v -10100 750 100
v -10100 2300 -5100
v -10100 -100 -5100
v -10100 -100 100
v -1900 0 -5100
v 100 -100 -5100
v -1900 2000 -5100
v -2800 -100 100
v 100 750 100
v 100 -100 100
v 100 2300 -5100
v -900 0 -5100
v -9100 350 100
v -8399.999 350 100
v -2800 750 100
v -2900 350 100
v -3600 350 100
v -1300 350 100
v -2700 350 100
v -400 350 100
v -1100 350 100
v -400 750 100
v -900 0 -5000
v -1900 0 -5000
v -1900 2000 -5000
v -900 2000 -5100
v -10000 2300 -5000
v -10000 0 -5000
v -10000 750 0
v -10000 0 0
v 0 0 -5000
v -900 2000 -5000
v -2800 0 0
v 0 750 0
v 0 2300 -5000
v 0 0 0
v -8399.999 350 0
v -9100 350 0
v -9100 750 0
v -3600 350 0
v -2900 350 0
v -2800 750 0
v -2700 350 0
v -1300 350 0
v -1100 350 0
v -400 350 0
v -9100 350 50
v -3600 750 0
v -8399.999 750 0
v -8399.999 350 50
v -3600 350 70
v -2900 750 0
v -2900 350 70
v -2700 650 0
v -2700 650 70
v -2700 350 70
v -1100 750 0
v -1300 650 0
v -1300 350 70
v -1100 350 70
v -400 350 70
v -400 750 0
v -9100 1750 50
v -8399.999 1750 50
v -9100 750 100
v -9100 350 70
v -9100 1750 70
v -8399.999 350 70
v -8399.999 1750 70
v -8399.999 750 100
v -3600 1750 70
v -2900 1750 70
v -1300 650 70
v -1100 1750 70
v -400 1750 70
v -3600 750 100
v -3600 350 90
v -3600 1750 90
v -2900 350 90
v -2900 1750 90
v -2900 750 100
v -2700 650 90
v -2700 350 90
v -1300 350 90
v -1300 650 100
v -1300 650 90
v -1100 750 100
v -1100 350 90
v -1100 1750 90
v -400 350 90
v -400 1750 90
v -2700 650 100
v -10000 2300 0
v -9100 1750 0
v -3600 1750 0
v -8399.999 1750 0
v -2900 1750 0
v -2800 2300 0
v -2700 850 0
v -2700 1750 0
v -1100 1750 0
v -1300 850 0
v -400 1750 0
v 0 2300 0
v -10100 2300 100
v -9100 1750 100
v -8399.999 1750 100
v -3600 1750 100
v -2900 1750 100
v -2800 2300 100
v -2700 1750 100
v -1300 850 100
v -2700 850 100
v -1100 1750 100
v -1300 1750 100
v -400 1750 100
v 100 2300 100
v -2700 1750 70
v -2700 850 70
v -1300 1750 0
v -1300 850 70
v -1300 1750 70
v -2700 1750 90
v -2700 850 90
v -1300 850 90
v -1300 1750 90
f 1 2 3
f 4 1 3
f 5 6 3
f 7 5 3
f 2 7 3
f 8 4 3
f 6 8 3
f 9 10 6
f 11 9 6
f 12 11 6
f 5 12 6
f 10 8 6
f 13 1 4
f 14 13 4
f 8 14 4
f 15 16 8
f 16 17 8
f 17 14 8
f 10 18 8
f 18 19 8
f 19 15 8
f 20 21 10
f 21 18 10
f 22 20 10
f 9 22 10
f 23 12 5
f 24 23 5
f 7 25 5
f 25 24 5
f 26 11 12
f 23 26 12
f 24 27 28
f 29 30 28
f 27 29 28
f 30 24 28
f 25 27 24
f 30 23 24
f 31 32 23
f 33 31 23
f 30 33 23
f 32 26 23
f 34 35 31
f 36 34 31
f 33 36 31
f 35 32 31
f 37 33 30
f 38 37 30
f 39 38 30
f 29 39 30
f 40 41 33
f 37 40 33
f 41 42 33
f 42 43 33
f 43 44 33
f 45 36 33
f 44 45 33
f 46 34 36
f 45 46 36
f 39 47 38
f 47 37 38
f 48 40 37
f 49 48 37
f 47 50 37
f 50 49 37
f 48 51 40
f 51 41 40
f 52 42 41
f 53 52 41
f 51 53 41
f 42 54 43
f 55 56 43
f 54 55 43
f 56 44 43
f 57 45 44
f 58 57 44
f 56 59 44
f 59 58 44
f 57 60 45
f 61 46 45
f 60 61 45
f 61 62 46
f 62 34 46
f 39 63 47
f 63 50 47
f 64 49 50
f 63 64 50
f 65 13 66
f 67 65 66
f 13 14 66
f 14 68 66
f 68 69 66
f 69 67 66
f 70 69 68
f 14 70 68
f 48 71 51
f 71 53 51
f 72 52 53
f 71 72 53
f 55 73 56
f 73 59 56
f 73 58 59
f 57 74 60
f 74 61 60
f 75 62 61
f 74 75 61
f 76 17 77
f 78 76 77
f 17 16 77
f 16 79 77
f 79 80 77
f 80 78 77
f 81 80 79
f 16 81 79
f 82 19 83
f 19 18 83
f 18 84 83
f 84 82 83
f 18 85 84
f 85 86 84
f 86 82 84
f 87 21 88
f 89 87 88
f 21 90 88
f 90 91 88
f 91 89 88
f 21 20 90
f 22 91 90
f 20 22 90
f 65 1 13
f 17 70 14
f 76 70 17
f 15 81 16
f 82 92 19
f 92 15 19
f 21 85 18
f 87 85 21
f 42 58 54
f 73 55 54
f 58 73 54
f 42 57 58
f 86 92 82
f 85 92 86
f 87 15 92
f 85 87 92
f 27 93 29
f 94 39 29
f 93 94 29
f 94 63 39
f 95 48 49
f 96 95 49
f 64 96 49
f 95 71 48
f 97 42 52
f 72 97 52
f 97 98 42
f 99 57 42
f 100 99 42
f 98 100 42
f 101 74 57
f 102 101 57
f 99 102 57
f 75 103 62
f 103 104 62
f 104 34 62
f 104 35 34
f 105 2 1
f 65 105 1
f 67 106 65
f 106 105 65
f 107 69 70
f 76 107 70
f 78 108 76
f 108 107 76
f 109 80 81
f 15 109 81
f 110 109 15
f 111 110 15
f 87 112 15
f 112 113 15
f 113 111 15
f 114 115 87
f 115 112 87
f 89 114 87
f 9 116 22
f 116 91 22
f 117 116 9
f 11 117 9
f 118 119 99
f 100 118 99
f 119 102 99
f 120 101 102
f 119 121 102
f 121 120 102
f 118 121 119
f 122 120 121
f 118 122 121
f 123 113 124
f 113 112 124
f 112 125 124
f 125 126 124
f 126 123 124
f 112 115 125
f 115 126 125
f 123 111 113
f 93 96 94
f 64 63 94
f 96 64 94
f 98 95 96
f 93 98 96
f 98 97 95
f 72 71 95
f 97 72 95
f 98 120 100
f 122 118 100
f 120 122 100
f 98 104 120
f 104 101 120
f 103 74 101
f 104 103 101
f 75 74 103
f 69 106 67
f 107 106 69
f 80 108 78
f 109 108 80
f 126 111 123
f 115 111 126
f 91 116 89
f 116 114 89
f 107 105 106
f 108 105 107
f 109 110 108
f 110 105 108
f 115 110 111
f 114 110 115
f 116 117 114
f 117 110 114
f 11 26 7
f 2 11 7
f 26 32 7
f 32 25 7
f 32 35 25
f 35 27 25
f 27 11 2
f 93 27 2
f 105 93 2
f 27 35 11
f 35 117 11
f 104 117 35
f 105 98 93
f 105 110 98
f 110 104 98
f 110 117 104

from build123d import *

# Parameters (mm, degrees)
SKETCH1_W           = 10200
SKETCH1_H           = 5200
SKETCH1_W_2         = 10000
SKETCH1_H_2         = 5000
BOSS_EXTRUDE1_DEPTH = 2300
SKETCH2_W           = 10200
SKETCH2_H           = 5200
BOSS_EXTRUDE2_DEPTH = 100
CUT_EXTRUDE1_REACH  = 11592.513
SKETCH3_W           = 700
SKETCH3_H           = 1400
SKETCH3_W_2         = 1400
SKETCH3_H_2         = 900
SKETCH3_H_3         = 300
SKETCH5_W           = 700
SKETCH5_H           = 1400
SKETCH5_W_2         = 1400
SKETCH5_H_2         = 900
SKETCH5_H_3         = 300
BOSS_EXTRUDE5_DEPTH = 20
CUT_EXTRUDE2_REACH  = 11592.513
SKETCH6_W           = 700
SKETCH6_H           = 1400
SKETCH7_W           = 700
SKETCH7_H           = 1400
BOSS_EXTRUDE6_DEPTH = 20
CUT_EXTRUDE3_REACH  = 11592.513
SKETCH8_W           = 1000
SKETCH8_H           = 2000


with BuildPart() as part:
    # Sketch1 → Boss-Extrude1 (new body)
    with BuildSketch(Plane(origin=(0, 0, 0), x_dir=(1, 0, 0), z_dir=(0, 1, 0))):
        with Locations((-5000, 2500)):
            Rectangle(SKETCH1_W, SKETCH1_H)
        with Locations((-5000, 2500)):
            Rectangle(SKETCH1_W_2, SKETCH1_H_2, mode=Mode.SUBTRACT)
    extrude(amount=BOSS_EXTRUDE1_DEPTH)

    # Sketch2 → Boss-Extrude2 (add)
    with BuildSketch(Plane(origin=(0, 0, 0), x_dir=(1, 0, 0), z_dir=(0, 1, 0))):
        with Locations((-5000, 2500)):
            Rectangle(SKETCH2_W, SKETCH2_H)
    extrude(amount=-BOSS_EXTRUDE2_DEPTH)

    # Sketch3 → Cut-Extrude1 (cut, up to next)
    with BuildSketch(Plane.XY.offset(100), mode=Mode.PRIVATE) as cut_extrude1_sk1:
        with Locations((-750, 1050)):
            Rectangle(SKETCH3_W, SKETCH3_H)
    cut_extrude1_tool1 = extrude(cut_extrude1_sk1.sketch, amount=-CUT_EXTRUDE1_REACH, mode=Mode.PRIVATE) & part.part
    # Sketch3 → Cut-Extrude1 (cut, up to next)
    with BuildSketch(Plane.XY.offset(100), mode=Mode.PRIVATE) as cut_extrude1_sk2:
        with Locations((-2000, 1300)):
            Rectangle(SKETCH3_W_2, SKETCH3_H_2)
    cut_extrude1_tool2 = extrude(cut_extrude1_sk2.sketch, amount=-CUT_EXTRUDE1_REACH, mode=Mode.PRIVATE) & part.part
    # Sketch3 → Cut-Extrude1 (cut, up to next)
    with BuildSketch(Plane.XY.offset(100), mode=Mode.PRIVATE) as cut_extrude1_sk3:
        with Locations((-2000, 500)):
            Rectangle(SKETCH3_W_2, SKETCH3_H_3)
    cut_extrude1_tool3 = extrude(cut_extrude1_sk3.sketch, amount=-CUT_EXTRUDE1_REACH, mode=Mode.PRIVATE) & part.part
    # Sketch3 → Cut-Extrude1 (cut, up to next)
    with BuildSketch(Plane.XY.offset(100), mode=Mode.PRIVATE) as cut_extrude1_sk4:
        with Locations((-3250, 1050)):
            Rectangle(SKETCH3_W, SKETCH3_H)
    cut_extrude1_tool4 = extrude(cut_extrude1_sk4.sketch, amount=-CUT_EXTRUDE1_REACH, mode=Mode.PRIVATE) & part.part
    add(cut_extrude1_tool1.solids().sort_by_distance((-750, 1050, 100))[0], mode=Mode.SUBTRACT)
    add(cut_extrude1_tool2.solids().sort_by_distance((-2000, 1300, 100))[0], mode=Mode.SUBTRACT)
    add(cut_extrude1_tool3.solids().sort_by_distance((-2000, 500, 100))[0], mode=Mode.SUBTRACT)
    add(cut_extrude1_tool4.solids().sort_by_distance((-3250, 1050, 100))[0], mode=Mode.SUBTRACT)

    # Sketch5 → Boss-Extrude5 (add)
    with BuildSketch(Plane.XY.offset(70)):
        with Locations((-3250, 1050)):
            Rectangle(SKETCH5_W, SKETCH5_H)
        with Locations((-2000, 1300)):
            Rectangle(SKETCH5_W_2, SKETCH5_H_2)
        with Locations((-2000, 500)):
            Rectangle(SKETCH5_W_2, SKETCH5_H_3)
        with Locations((-750, 1050)):
            Rectangle(SKETCH5_W, SKETCH5_H)
    extrude(amount=BOSS_EXTRUDE5_DEPTH)

    # Sketch6 → Cut-Extrude2 (cut, up to next)
    with BuildSketch(Plane.XY.offset(100), mode=Mode.PRIVATE) as cut_extrude2_sk1:
        with Locations((-8750, 1050)):
            Rectangle(SKETCH6_W, SKETCH6_H)
    cut_extrude2_tool1 = extrude(cut_extrude2_sk1.sketch, amount=-CUT_EXTRUDE2_REACH, mode=Mode.PRIVATE) & part.part
    add(cut_extrude2_tool1.solids().sort_by_distance((-8750, 1050, 100))[0], mode=Mode.SUBTRACT)

    # Sketch7 → Boss-Extrude6 (add)
    with BuildSketch(Plane.XY.offset(70)):
        with Locations((-8750, 1050)):
            Rectangle(SKETCH7_W, SKETCH7_H)
    extrude(amount=-BOSS_EXTRUDE6_DEPTH)

    # Sketch8 → Cut-Extrude3 (cut, up to next)
    with BuildSketch(Plane(origin=(0, 0, -5100), x_dir=(-1, 0, 0), z_dir=(0, 0, -1)), mode=Mode.PRIVATE) as cut_extrude3_sk1:
        with Locations((1400, 1000)):
            Rectangle(SKETCH8_W, SKETCH8_H)
    cut_extrude3_tool1 = extrude(cut_extrude3_sk1.sketch, amount=-CUT_EXTRUDE3_REACH, mode=Mode.PRIVATE) & part.part
    add(cut_extrude3_tool1.solids().sort_by_distance((-1400, 1000, -5100))[0], mode=Mode.SUBTRACT)


solid = part.part
